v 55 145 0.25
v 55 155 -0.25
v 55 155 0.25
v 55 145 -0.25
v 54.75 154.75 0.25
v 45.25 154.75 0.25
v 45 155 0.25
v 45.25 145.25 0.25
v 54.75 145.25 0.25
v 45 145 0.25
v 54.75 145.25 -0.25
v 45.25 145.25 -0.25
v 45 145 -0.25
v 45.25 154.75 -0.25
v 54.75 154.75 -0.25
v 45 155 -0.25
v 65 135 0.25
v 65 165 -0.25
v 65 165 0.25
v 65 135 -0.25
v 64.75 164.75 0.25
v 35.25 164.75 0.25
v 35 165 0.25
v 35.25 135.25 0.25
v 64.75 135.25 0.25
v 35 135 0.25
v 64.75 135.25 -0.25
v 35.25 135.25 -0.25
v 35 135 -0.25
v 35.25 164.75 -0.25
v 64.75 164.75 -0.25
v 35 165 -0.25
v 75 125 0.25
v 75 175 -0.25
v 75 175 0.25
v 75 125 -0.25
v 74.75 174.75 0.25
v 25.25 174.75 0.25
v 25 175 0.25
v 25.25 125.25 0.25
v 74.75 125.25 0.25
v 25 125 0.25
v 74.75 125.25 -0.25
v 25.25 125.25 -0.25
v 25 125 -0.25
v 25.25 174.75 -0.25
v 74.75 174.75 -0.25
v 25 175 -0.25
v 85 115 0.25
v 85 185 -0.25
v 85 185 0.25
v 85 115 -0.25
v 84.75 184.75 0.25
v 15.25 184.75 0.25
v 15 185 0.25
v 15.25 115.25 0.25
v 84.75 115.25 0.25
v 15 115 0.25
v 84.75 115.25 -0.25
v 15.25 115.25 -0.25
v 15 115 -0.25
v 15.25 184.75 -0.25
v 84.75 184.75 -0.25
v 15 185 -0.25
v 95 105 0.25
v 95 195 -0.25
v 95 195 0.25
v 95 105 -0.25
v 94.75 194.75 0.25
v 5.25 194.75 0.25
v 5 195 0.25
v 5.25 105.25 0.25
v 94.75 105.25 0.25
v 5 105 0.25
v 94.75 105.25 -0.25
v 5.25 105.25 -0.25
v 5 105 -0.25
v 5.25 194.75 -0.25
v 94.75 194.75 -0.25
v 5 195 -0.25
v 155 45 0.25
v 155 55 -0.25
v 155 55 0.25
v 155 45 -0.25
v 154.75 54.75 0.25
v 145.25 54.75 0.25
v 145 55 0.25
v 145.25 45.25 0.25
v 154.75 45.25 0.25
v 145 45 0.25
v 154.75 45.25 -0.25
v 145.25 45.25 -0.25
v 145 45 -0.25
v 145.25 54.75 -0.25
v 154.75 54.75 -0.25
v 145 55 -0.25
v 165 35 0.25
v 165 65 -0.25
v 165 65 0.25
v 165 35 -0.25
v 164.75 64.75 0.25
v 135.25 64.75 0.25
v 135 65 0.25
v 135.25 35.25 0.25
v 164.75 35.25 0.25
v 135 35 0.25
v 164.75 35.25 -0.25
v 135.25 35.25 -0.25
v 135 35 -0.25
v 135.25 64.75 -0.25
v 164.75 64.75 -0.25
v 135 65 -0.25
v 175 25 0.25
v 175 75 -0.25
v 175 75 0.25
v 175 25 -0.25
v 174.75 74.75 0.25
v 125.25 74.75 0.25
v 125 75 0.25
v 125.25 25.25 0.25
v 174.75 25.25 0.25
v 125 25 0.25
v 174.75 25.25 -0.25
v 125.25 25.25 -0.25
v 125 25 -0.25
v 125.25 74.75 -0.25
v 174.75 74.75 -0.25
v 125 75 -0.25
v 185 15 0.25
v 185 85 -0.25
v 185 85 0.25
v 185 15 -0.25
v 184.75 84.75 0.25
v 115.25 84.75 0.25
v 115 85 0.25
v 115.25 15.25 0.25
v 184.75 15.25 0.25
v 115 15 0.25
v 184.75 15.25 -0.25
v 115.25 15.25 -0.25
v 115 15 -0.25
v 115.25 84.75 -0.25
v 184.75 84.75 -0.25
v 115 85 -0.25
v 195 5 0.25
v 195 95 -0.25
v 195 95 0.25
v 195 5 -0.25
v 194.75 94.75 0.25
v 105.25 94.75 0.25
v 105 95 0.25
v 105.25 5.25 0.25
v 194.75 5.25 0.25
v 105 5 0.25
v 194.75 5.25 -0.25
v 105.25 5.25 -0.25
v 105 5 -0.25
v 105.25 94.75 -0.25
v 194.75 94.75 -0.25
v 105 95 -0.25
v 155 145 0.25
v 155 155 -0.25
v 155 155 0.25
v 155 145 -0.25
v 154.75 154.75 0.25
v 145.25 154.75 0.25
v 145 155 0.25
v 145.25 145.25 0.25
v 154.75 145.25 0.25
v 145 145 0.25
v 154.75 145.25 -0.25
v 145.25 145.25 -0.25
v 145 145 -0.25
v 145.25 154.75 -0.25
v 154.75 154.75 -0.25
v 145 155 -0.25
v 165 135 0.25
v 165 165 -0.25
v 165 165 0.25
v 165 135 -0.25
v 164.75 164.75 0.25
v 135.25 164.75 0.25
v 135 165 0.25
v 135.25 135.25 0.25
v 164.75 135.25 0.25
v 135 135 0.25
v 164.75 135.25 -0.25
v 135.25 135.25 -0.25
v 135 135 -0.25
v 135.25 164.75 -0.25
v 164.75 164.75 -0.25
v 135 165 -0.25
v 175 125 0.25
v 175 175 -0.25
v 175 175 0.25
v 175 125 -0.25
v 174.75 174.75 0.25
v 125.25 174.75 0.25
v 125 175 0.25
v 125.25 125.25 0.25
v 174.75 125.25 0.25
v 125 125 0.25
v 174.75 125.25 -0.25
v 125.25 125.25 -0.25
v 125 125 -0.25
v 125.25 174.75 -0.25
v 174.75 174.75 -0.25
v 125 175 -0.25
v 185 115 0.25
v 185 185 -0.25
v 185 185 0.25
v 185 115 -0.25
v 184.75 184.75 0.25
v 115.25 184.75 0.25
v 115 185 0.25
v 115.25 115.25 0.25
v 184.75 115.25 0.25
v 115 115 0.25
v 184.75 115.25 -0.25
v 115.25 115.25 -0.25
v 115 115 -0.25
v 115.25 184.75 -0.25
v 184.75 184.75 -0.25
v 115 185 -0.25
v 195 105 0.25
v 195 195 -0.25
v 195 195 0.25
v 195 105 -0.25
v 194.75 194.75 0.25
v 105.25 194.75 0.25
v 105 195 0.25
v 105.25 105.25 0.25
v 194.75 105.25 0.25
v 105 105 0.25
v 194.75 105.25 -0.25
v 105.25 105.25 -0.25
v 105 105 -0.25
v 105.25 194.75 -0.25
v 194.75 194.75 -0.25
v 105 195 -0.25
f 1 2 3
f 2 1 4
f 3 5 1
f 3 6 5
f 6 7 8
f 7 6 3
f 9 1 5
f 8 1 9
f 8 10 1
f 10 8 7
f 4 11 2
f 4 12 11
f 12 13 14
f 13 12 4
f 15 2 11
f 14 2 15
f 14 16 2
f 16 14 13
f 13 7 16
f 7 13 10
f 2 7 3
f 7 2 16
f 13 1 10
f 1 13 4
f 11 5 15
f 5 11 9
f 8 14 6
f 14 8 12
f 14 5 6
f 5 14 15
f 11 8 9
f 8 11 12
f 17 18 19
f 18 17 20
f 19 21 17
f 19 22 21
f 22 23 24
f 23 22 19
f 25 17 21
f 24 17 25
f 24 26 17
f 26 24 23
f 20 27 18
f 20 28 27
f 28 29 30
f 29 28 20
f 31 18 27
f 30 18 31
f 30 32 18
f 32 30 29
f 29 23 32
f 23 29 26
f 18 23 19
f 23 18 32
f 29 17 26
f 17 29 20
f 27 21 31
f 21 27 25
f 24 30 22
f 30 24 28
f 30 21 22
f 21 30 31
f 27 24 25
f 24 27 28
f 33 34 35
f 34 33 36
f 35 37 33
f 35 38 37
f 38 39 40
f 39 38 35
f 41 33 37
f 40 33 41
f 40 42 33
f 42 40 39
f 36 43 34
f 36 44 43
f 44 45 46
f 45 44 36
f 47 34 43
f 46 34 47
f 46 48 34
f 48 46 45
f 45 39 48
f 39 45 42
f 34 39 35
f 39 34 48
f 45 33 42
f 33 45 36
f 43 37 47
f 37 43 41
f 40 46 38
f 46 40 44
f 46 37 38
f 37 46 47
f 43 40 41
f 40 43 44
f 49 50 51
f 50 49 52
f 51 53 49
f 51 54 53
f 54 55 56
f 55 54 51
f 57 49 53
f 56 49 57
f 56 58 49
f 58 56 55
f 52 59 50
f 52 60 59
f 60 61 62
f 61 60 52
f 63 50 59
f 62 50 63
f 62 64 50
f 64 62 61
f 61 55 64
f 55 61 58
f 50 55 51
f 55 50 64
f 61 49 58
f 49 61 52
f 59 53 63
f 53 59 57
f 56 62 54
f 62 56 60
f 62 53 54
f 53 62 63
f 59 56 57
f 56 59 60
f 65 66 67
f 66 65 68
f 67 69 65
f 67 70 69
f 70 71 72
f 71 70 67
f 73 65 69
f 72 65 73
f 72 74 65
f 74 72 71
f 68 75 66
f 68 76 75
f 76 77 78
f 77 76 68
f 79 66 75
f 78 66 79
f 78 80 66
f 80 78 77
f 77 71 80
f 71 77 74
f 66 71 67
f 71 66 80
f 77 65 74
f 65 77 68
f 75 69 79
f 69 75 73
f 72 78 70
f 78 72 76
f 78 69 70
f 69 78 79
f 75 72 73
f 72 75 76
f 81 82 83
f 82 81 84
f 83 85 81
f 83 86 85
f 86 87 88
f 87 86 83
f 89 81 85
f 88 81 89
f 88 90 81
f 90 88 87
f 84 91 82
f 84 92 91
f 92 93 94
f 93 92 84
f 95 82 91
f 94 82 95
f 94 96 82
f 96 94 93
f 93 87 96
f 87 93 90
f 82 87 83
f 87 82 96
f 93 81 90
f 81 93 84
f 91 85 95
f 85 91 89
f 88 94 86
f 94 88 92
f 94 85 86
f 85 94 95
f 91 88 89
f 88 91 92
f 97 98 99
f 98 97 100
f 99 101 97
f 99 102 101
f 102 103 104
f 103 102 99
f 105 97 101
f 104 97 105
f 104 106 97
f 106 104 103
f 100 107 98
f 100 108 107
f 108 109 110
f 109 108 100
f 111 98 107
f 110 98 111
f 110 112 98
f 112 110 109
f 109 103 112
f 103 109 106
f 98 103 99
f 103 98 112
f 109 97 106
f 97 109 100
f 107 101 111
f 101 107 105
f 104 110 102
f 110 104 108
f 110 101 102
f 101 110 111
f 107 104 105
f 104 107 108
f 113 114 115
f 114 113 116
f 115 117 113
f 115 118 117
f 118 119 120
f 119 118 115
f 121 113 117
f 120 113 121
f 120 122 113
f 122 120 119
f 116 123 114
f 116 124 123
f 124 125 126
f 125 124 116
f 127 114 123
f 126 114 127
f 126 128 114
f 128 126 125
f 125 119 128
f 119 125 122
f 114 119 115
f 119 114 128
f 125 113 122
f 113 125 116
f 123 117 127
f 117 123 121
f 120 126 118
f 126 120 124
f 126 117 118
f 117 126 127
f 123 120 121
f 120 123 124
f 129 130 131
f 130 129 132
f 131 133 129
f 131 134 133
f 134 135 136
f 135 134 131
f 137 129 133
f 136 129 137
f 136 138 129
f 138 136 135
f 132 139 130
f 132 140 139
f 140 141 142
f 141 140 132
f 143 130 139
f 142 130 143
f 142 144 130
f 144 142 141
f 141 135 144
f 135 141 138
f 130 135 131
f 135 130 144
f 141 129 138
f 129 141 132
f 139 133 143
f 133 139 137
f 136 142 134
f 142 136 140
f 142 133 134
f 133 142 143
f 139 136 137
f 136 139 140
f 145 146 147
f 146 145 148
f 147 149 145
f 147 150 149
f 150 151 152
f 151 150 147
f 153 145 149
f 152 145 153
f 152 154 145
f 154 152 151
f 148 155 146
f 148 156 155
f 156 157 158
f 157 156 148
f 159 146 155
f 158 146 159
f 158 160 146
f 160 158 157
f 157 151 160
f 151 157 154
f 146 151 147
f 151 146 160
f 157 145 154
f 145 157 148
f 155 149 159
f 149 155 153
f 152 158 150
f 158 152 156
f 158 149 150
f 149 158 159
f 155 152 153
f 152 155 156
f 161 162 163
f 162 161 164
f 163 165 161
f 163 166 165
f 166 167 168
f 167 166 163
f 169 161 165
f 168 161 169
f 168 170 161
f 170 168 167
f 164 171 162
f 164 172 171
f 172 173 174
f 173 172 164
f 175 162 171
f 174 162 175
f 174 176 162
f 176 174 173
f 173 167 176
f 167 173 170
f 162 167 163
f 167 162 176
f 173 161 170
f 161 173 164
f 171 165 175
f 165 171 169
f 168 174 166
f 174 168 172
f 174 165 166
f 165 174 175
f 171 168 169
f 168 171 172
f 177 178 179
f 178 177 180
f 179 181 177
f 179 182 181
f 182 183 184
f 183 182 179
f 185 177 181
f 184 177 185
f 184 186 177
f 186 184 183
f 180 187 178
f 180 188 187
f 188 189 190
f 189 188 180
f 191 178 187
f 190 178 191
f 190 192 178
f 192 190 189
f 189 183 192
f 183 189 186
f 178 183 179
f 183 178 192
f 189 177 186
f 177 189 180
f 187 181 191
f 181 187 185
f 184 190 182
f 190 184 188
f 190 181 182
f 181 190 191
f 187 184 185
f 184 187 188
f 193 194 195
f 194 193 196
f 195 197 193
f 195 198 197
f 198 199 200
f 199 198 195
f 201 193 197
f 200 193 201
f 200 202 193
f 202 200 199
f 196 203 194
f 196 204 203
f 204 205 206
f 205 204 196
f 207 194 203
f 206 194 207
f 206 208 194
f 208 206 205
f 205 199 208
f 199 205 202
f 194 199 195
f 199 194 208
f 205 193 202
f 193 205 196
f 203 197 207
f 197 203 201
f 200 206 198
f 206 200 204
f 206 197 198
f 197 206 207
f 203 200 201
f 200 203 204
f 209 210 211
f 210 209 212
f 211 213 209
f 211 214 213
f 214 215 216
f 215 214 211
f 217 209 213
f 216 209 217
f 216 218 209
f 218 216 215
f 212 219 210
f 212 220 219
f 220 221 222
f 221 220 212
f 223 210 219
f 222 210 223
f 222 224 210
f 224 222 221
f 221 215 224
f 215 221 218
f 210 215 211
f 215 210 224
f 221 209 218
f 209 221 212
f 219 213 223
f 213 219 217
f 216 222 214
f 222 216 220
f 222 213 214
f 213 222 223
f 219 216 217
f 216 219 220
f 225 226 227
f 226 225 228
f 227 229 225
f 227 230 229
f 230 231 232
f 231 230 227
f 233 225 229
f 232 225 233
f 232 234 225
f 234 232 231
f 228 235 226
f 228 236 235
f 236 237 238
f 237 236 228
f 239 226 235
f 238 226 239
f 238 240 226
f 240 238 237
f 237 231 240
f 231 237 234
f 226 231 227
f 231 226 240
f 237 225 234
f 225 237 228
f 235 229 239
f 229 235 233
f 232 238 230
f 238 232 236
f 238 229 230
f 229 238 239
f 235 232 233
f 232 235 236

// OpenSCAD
// bed level

HEIGHT = .5;

BED_SIZE = 200;

START = 10;
STEP = 20;
END = BED_SIZE / 2;


module outline(size=10) {

  difference() {
    cube([size, size, HEIGHT], center=true);
    cube([size - HEIGHT, size - HEIGHT, HEIGHT + 0.01], center=true);
  }
  
}

AA = BED_SIZE / 4;
BB = BED_SIZE - AA;

for(o = [ [ AA, BB], [BB, AA], [BB, BB] ] ) {
  translate( [o[0], o[1], 0])
  for (a =[START:STEP:END]) outline(a);
}


*for(x = [ AA, BB ], y = [ AA, BB ] ) {
  translate( [x, y, 0])
  for (a =[START:STEP:END]) outline(a);
}
